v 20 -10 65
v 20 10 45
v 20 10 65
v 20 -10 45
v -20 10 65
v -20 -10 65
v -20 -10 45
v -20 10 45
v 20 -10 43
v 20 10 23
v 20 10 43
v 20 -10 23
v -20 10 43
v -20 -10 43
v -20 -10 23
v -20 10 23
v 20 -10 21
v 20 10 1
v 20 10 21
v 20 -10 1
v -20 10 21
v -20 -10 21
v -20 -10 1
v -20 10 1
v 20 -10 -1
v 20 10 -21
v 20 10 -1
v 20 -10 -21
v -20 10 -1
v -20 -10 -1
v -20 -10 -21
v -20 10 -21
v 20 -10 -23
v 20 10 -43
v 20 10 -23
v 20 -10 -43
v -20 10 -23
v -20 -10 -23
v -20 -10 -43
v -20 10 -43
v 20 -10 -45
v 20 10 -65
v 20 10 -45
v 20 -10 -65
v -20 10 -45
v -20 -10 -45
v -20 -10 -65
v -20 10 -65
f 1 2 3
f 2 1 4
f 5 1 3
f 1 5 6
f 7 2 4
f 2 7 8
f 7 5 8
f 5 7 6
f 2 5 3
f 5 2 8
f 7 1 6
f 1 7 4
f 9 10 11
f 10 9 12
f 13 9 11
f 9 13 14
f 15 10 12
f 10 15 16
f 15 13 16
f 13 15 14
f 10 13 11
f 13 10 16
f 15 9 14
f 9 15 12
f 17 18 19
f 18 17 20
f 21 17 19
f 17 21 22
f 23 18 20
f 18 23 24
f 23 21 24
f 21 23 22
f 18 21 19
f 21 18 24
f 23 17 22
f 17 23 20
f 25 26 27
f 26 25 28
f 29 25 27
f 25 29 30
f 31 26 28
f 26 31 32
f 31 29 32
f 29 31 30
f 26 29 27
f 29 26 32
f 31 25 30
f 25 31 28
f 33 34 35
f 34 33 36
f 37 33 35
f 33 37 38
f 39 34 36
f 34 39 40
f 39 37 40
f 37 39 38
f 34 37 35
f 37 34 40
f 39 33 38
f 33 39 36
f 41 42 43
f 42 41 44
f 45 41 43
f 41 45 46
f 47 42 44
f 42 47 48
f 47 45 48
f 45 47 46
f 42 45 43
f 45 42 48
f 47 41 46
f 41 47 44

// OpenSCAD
// Define the dimensions of the rectangular block
block_width = 20;  // Width of the block
block_height = 20; // Height of the block
block_length = 40; // Length of the block

// Define the spacing between blocks
block_spacing = 2; // Space between each block

// Function to create a rectangular block
module rectangular_block() {
    cube([block_length, block_width, block_height], center = true);
}

// Stack the blocks based on the positional relationship
translate([0, 0, block_height * 2.5 + block_spacing * 2.5]) rectangular_block(); // Layer 1
translate([0, 0, block_height * 1.5 + block_spacing * 1.5]) rectangular_block(); // Layer 2
translate([0, 0, block_height * 0.5 + block_spacing * 0.5]) rectangular_block(); // Layer 3
translate([0, 0, -block_height * 0.5 - block_spacing * 0.5]) rectangular_block(); // Layer 4
translate([0, 0, -block_height * 1.5 - block_spacing * 1.5]) rectangular_block(); // Layer 5
translate([0, 0, -block_height * 2.5 - block_spacing * 2.5]) rectangular_block(); // Layer 6
